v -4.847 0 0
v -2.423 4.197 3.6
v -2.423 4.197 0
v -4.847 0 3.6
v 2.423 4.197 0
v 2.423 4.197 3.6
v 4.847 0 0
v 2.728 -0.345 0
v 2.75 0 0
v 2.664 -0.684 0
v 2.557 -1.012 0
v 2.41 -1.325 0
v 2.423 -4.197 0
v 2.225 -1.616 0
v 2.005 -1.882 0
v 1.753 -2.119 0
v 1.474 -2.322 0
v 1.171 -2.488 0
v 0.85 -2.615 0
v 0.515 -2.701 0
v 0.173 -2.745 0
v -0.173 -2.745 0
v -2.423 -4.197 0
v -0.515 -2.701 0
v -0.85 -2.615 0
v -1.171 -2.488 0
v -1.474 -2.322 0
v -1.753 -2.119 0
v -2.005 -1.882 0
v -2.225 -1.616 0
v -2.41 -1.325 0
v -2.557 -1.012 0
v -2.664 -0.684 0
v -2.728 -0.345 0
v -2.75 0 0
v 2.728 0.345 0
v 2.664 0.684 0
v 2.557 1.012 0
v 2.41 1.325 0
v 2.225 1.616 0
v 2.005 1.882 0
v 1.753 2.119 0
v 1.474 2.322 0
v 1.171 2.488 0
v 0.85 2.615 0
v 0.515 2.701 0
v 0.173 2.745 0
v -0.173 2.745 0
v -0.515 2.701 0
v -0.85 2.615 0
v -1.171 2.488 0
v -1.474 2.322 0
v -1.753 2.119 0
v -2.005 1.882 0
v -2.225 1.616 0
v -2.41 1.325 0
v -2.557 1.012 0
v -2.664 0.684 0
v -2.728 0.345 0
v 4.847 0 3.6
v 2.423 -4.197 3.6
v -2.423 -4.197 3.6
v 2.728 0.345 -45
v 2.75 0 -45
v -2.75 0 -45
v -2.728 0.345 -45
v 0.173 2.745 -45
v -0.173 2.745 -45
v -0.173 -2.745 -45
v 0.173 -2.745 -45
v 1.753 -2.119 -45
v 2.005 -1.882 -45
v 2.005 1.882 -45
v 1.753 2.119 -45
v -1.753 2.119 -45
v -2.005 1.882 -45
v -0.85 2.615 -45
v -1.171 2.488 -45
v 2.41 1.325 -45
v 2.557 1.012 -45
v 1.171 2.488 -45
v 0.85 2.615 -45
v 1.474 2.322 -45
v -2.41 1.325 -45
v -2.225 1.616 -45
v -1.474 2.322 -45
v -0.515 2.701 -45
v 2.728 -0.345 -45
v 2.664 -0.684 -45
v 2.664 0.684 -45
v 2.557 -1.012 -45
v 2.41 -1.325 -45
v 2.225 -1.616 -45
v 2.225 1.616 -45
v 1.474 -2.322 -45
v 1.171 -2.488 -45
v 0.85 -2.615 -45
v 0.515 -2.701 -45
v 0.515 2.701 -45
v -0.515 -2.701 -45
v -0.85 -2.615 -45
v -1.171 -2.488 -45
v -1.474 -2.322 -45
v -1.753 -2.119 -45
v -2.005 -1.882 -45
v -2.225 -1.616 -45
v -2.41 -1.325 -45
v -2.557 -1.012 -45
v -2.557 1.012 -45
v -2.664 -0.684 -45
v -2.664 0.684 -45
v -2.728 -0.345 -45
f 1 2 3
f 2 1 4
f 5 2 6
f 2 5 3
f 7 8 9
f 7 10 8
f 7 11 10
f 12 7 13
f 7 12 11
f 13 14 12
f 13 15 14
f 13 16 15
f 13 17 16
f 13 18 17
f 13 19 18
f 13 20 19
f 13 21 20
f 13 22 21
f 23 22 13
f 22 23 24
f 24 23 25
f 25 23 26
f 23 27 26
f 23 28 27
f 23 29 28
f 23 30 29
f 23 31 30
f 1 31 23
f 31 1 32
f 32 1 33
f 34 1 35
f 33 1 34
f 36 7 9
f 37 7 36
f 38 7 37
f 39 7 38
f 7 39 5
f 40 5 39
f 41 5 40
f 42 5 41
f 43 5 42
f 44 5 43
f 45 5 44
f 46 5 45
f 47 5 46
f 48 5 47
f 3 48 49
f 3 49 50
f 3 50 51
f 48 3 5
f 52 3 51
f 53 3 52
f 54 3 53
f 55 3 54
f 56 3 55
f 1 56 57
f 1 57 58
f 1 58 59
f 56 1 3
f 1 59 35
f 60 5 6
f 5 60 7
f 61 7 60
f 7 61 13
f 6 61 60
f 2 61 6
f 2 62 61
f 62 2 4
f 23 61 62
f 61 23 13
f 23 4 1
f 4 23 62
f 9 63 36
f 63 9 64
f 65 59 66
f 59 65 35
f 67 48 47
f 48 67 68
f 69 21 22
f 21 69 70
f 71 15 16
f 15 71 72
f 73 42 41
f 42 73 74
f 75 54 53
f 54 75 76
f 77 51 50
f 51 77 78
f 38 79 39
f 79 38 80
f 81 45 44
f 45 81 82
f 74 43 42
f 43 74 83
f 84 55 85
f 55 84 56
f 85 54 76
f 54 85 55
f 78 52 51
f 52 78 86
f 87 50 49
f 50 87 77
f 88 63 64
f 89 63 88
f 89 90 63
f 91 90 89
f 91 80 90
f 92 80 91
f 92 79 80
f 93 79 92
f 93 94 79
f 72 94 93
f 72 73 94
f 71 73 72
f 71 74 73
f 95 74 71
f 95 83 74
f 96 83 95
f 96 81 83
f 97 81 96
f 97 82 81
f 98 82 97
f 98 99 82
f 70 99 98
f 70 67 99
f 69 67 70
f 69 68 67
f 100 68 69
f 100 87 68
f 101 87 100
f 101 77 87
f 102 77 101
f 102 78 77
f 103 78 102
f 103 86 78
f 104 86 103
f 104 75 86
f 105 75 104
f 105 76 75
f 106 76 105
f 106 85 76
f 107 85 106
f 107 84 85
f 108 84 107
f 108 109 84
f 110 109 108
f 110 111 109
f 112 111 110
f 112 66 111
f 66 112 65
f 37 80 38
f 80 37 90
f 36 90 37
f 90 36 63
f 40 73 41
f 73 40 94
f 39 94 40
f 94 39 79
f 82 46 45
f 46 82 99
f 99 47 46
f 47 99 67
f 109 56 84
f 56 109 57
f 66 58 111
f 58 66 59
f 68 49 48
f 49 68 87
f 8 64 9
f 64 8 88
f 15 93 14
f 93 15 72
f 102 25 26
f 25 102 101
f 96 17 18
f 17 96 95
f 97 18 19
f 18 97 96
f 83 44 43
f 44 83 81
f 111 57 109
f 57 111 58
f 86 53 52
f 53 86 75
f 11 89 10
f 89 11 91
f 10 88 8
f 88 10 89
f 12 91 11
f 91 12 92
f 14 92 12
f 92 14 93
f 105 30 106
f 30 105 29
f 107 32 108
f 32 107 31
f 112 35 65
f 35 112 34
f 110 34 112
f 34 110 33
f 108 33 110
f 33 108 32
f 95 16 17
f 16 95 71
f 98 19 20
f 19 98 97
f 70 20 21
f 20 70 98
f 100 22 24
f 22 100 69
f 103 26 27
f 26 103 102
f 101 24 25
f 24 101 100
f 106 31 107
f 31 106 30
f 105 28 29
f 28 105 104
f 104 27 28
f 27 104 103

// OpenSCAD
$fn = 50;


difference() {
	union() {
		translate(v = [0, 0, 0]) {
			rotate(a = [0, 0, 0]) {
				translate(v = [0, 0, 0]) {
					rotate(a = [0, 0, 0]) {
						linear_extrude(height = 3.6000000000) {
							polygon(points = [[4.8468000000, 0.0000000000], [2.4234000000, 4.1974519271], [-2.4234000000, 4.1974519271], [-4.8468000000, 0.0000000000], [-2.4234000000, -4.1974519271], [2.4234000000, -4.1974519271]]);
						}
					}
				}
			}
		}
		translate(v = [0, 0, -45]) {
			rotate(a = [0, 0, 0]) {
				cylinder(h = 45, r = 2.7500000000);
			}
		}
	}
	union();
}
